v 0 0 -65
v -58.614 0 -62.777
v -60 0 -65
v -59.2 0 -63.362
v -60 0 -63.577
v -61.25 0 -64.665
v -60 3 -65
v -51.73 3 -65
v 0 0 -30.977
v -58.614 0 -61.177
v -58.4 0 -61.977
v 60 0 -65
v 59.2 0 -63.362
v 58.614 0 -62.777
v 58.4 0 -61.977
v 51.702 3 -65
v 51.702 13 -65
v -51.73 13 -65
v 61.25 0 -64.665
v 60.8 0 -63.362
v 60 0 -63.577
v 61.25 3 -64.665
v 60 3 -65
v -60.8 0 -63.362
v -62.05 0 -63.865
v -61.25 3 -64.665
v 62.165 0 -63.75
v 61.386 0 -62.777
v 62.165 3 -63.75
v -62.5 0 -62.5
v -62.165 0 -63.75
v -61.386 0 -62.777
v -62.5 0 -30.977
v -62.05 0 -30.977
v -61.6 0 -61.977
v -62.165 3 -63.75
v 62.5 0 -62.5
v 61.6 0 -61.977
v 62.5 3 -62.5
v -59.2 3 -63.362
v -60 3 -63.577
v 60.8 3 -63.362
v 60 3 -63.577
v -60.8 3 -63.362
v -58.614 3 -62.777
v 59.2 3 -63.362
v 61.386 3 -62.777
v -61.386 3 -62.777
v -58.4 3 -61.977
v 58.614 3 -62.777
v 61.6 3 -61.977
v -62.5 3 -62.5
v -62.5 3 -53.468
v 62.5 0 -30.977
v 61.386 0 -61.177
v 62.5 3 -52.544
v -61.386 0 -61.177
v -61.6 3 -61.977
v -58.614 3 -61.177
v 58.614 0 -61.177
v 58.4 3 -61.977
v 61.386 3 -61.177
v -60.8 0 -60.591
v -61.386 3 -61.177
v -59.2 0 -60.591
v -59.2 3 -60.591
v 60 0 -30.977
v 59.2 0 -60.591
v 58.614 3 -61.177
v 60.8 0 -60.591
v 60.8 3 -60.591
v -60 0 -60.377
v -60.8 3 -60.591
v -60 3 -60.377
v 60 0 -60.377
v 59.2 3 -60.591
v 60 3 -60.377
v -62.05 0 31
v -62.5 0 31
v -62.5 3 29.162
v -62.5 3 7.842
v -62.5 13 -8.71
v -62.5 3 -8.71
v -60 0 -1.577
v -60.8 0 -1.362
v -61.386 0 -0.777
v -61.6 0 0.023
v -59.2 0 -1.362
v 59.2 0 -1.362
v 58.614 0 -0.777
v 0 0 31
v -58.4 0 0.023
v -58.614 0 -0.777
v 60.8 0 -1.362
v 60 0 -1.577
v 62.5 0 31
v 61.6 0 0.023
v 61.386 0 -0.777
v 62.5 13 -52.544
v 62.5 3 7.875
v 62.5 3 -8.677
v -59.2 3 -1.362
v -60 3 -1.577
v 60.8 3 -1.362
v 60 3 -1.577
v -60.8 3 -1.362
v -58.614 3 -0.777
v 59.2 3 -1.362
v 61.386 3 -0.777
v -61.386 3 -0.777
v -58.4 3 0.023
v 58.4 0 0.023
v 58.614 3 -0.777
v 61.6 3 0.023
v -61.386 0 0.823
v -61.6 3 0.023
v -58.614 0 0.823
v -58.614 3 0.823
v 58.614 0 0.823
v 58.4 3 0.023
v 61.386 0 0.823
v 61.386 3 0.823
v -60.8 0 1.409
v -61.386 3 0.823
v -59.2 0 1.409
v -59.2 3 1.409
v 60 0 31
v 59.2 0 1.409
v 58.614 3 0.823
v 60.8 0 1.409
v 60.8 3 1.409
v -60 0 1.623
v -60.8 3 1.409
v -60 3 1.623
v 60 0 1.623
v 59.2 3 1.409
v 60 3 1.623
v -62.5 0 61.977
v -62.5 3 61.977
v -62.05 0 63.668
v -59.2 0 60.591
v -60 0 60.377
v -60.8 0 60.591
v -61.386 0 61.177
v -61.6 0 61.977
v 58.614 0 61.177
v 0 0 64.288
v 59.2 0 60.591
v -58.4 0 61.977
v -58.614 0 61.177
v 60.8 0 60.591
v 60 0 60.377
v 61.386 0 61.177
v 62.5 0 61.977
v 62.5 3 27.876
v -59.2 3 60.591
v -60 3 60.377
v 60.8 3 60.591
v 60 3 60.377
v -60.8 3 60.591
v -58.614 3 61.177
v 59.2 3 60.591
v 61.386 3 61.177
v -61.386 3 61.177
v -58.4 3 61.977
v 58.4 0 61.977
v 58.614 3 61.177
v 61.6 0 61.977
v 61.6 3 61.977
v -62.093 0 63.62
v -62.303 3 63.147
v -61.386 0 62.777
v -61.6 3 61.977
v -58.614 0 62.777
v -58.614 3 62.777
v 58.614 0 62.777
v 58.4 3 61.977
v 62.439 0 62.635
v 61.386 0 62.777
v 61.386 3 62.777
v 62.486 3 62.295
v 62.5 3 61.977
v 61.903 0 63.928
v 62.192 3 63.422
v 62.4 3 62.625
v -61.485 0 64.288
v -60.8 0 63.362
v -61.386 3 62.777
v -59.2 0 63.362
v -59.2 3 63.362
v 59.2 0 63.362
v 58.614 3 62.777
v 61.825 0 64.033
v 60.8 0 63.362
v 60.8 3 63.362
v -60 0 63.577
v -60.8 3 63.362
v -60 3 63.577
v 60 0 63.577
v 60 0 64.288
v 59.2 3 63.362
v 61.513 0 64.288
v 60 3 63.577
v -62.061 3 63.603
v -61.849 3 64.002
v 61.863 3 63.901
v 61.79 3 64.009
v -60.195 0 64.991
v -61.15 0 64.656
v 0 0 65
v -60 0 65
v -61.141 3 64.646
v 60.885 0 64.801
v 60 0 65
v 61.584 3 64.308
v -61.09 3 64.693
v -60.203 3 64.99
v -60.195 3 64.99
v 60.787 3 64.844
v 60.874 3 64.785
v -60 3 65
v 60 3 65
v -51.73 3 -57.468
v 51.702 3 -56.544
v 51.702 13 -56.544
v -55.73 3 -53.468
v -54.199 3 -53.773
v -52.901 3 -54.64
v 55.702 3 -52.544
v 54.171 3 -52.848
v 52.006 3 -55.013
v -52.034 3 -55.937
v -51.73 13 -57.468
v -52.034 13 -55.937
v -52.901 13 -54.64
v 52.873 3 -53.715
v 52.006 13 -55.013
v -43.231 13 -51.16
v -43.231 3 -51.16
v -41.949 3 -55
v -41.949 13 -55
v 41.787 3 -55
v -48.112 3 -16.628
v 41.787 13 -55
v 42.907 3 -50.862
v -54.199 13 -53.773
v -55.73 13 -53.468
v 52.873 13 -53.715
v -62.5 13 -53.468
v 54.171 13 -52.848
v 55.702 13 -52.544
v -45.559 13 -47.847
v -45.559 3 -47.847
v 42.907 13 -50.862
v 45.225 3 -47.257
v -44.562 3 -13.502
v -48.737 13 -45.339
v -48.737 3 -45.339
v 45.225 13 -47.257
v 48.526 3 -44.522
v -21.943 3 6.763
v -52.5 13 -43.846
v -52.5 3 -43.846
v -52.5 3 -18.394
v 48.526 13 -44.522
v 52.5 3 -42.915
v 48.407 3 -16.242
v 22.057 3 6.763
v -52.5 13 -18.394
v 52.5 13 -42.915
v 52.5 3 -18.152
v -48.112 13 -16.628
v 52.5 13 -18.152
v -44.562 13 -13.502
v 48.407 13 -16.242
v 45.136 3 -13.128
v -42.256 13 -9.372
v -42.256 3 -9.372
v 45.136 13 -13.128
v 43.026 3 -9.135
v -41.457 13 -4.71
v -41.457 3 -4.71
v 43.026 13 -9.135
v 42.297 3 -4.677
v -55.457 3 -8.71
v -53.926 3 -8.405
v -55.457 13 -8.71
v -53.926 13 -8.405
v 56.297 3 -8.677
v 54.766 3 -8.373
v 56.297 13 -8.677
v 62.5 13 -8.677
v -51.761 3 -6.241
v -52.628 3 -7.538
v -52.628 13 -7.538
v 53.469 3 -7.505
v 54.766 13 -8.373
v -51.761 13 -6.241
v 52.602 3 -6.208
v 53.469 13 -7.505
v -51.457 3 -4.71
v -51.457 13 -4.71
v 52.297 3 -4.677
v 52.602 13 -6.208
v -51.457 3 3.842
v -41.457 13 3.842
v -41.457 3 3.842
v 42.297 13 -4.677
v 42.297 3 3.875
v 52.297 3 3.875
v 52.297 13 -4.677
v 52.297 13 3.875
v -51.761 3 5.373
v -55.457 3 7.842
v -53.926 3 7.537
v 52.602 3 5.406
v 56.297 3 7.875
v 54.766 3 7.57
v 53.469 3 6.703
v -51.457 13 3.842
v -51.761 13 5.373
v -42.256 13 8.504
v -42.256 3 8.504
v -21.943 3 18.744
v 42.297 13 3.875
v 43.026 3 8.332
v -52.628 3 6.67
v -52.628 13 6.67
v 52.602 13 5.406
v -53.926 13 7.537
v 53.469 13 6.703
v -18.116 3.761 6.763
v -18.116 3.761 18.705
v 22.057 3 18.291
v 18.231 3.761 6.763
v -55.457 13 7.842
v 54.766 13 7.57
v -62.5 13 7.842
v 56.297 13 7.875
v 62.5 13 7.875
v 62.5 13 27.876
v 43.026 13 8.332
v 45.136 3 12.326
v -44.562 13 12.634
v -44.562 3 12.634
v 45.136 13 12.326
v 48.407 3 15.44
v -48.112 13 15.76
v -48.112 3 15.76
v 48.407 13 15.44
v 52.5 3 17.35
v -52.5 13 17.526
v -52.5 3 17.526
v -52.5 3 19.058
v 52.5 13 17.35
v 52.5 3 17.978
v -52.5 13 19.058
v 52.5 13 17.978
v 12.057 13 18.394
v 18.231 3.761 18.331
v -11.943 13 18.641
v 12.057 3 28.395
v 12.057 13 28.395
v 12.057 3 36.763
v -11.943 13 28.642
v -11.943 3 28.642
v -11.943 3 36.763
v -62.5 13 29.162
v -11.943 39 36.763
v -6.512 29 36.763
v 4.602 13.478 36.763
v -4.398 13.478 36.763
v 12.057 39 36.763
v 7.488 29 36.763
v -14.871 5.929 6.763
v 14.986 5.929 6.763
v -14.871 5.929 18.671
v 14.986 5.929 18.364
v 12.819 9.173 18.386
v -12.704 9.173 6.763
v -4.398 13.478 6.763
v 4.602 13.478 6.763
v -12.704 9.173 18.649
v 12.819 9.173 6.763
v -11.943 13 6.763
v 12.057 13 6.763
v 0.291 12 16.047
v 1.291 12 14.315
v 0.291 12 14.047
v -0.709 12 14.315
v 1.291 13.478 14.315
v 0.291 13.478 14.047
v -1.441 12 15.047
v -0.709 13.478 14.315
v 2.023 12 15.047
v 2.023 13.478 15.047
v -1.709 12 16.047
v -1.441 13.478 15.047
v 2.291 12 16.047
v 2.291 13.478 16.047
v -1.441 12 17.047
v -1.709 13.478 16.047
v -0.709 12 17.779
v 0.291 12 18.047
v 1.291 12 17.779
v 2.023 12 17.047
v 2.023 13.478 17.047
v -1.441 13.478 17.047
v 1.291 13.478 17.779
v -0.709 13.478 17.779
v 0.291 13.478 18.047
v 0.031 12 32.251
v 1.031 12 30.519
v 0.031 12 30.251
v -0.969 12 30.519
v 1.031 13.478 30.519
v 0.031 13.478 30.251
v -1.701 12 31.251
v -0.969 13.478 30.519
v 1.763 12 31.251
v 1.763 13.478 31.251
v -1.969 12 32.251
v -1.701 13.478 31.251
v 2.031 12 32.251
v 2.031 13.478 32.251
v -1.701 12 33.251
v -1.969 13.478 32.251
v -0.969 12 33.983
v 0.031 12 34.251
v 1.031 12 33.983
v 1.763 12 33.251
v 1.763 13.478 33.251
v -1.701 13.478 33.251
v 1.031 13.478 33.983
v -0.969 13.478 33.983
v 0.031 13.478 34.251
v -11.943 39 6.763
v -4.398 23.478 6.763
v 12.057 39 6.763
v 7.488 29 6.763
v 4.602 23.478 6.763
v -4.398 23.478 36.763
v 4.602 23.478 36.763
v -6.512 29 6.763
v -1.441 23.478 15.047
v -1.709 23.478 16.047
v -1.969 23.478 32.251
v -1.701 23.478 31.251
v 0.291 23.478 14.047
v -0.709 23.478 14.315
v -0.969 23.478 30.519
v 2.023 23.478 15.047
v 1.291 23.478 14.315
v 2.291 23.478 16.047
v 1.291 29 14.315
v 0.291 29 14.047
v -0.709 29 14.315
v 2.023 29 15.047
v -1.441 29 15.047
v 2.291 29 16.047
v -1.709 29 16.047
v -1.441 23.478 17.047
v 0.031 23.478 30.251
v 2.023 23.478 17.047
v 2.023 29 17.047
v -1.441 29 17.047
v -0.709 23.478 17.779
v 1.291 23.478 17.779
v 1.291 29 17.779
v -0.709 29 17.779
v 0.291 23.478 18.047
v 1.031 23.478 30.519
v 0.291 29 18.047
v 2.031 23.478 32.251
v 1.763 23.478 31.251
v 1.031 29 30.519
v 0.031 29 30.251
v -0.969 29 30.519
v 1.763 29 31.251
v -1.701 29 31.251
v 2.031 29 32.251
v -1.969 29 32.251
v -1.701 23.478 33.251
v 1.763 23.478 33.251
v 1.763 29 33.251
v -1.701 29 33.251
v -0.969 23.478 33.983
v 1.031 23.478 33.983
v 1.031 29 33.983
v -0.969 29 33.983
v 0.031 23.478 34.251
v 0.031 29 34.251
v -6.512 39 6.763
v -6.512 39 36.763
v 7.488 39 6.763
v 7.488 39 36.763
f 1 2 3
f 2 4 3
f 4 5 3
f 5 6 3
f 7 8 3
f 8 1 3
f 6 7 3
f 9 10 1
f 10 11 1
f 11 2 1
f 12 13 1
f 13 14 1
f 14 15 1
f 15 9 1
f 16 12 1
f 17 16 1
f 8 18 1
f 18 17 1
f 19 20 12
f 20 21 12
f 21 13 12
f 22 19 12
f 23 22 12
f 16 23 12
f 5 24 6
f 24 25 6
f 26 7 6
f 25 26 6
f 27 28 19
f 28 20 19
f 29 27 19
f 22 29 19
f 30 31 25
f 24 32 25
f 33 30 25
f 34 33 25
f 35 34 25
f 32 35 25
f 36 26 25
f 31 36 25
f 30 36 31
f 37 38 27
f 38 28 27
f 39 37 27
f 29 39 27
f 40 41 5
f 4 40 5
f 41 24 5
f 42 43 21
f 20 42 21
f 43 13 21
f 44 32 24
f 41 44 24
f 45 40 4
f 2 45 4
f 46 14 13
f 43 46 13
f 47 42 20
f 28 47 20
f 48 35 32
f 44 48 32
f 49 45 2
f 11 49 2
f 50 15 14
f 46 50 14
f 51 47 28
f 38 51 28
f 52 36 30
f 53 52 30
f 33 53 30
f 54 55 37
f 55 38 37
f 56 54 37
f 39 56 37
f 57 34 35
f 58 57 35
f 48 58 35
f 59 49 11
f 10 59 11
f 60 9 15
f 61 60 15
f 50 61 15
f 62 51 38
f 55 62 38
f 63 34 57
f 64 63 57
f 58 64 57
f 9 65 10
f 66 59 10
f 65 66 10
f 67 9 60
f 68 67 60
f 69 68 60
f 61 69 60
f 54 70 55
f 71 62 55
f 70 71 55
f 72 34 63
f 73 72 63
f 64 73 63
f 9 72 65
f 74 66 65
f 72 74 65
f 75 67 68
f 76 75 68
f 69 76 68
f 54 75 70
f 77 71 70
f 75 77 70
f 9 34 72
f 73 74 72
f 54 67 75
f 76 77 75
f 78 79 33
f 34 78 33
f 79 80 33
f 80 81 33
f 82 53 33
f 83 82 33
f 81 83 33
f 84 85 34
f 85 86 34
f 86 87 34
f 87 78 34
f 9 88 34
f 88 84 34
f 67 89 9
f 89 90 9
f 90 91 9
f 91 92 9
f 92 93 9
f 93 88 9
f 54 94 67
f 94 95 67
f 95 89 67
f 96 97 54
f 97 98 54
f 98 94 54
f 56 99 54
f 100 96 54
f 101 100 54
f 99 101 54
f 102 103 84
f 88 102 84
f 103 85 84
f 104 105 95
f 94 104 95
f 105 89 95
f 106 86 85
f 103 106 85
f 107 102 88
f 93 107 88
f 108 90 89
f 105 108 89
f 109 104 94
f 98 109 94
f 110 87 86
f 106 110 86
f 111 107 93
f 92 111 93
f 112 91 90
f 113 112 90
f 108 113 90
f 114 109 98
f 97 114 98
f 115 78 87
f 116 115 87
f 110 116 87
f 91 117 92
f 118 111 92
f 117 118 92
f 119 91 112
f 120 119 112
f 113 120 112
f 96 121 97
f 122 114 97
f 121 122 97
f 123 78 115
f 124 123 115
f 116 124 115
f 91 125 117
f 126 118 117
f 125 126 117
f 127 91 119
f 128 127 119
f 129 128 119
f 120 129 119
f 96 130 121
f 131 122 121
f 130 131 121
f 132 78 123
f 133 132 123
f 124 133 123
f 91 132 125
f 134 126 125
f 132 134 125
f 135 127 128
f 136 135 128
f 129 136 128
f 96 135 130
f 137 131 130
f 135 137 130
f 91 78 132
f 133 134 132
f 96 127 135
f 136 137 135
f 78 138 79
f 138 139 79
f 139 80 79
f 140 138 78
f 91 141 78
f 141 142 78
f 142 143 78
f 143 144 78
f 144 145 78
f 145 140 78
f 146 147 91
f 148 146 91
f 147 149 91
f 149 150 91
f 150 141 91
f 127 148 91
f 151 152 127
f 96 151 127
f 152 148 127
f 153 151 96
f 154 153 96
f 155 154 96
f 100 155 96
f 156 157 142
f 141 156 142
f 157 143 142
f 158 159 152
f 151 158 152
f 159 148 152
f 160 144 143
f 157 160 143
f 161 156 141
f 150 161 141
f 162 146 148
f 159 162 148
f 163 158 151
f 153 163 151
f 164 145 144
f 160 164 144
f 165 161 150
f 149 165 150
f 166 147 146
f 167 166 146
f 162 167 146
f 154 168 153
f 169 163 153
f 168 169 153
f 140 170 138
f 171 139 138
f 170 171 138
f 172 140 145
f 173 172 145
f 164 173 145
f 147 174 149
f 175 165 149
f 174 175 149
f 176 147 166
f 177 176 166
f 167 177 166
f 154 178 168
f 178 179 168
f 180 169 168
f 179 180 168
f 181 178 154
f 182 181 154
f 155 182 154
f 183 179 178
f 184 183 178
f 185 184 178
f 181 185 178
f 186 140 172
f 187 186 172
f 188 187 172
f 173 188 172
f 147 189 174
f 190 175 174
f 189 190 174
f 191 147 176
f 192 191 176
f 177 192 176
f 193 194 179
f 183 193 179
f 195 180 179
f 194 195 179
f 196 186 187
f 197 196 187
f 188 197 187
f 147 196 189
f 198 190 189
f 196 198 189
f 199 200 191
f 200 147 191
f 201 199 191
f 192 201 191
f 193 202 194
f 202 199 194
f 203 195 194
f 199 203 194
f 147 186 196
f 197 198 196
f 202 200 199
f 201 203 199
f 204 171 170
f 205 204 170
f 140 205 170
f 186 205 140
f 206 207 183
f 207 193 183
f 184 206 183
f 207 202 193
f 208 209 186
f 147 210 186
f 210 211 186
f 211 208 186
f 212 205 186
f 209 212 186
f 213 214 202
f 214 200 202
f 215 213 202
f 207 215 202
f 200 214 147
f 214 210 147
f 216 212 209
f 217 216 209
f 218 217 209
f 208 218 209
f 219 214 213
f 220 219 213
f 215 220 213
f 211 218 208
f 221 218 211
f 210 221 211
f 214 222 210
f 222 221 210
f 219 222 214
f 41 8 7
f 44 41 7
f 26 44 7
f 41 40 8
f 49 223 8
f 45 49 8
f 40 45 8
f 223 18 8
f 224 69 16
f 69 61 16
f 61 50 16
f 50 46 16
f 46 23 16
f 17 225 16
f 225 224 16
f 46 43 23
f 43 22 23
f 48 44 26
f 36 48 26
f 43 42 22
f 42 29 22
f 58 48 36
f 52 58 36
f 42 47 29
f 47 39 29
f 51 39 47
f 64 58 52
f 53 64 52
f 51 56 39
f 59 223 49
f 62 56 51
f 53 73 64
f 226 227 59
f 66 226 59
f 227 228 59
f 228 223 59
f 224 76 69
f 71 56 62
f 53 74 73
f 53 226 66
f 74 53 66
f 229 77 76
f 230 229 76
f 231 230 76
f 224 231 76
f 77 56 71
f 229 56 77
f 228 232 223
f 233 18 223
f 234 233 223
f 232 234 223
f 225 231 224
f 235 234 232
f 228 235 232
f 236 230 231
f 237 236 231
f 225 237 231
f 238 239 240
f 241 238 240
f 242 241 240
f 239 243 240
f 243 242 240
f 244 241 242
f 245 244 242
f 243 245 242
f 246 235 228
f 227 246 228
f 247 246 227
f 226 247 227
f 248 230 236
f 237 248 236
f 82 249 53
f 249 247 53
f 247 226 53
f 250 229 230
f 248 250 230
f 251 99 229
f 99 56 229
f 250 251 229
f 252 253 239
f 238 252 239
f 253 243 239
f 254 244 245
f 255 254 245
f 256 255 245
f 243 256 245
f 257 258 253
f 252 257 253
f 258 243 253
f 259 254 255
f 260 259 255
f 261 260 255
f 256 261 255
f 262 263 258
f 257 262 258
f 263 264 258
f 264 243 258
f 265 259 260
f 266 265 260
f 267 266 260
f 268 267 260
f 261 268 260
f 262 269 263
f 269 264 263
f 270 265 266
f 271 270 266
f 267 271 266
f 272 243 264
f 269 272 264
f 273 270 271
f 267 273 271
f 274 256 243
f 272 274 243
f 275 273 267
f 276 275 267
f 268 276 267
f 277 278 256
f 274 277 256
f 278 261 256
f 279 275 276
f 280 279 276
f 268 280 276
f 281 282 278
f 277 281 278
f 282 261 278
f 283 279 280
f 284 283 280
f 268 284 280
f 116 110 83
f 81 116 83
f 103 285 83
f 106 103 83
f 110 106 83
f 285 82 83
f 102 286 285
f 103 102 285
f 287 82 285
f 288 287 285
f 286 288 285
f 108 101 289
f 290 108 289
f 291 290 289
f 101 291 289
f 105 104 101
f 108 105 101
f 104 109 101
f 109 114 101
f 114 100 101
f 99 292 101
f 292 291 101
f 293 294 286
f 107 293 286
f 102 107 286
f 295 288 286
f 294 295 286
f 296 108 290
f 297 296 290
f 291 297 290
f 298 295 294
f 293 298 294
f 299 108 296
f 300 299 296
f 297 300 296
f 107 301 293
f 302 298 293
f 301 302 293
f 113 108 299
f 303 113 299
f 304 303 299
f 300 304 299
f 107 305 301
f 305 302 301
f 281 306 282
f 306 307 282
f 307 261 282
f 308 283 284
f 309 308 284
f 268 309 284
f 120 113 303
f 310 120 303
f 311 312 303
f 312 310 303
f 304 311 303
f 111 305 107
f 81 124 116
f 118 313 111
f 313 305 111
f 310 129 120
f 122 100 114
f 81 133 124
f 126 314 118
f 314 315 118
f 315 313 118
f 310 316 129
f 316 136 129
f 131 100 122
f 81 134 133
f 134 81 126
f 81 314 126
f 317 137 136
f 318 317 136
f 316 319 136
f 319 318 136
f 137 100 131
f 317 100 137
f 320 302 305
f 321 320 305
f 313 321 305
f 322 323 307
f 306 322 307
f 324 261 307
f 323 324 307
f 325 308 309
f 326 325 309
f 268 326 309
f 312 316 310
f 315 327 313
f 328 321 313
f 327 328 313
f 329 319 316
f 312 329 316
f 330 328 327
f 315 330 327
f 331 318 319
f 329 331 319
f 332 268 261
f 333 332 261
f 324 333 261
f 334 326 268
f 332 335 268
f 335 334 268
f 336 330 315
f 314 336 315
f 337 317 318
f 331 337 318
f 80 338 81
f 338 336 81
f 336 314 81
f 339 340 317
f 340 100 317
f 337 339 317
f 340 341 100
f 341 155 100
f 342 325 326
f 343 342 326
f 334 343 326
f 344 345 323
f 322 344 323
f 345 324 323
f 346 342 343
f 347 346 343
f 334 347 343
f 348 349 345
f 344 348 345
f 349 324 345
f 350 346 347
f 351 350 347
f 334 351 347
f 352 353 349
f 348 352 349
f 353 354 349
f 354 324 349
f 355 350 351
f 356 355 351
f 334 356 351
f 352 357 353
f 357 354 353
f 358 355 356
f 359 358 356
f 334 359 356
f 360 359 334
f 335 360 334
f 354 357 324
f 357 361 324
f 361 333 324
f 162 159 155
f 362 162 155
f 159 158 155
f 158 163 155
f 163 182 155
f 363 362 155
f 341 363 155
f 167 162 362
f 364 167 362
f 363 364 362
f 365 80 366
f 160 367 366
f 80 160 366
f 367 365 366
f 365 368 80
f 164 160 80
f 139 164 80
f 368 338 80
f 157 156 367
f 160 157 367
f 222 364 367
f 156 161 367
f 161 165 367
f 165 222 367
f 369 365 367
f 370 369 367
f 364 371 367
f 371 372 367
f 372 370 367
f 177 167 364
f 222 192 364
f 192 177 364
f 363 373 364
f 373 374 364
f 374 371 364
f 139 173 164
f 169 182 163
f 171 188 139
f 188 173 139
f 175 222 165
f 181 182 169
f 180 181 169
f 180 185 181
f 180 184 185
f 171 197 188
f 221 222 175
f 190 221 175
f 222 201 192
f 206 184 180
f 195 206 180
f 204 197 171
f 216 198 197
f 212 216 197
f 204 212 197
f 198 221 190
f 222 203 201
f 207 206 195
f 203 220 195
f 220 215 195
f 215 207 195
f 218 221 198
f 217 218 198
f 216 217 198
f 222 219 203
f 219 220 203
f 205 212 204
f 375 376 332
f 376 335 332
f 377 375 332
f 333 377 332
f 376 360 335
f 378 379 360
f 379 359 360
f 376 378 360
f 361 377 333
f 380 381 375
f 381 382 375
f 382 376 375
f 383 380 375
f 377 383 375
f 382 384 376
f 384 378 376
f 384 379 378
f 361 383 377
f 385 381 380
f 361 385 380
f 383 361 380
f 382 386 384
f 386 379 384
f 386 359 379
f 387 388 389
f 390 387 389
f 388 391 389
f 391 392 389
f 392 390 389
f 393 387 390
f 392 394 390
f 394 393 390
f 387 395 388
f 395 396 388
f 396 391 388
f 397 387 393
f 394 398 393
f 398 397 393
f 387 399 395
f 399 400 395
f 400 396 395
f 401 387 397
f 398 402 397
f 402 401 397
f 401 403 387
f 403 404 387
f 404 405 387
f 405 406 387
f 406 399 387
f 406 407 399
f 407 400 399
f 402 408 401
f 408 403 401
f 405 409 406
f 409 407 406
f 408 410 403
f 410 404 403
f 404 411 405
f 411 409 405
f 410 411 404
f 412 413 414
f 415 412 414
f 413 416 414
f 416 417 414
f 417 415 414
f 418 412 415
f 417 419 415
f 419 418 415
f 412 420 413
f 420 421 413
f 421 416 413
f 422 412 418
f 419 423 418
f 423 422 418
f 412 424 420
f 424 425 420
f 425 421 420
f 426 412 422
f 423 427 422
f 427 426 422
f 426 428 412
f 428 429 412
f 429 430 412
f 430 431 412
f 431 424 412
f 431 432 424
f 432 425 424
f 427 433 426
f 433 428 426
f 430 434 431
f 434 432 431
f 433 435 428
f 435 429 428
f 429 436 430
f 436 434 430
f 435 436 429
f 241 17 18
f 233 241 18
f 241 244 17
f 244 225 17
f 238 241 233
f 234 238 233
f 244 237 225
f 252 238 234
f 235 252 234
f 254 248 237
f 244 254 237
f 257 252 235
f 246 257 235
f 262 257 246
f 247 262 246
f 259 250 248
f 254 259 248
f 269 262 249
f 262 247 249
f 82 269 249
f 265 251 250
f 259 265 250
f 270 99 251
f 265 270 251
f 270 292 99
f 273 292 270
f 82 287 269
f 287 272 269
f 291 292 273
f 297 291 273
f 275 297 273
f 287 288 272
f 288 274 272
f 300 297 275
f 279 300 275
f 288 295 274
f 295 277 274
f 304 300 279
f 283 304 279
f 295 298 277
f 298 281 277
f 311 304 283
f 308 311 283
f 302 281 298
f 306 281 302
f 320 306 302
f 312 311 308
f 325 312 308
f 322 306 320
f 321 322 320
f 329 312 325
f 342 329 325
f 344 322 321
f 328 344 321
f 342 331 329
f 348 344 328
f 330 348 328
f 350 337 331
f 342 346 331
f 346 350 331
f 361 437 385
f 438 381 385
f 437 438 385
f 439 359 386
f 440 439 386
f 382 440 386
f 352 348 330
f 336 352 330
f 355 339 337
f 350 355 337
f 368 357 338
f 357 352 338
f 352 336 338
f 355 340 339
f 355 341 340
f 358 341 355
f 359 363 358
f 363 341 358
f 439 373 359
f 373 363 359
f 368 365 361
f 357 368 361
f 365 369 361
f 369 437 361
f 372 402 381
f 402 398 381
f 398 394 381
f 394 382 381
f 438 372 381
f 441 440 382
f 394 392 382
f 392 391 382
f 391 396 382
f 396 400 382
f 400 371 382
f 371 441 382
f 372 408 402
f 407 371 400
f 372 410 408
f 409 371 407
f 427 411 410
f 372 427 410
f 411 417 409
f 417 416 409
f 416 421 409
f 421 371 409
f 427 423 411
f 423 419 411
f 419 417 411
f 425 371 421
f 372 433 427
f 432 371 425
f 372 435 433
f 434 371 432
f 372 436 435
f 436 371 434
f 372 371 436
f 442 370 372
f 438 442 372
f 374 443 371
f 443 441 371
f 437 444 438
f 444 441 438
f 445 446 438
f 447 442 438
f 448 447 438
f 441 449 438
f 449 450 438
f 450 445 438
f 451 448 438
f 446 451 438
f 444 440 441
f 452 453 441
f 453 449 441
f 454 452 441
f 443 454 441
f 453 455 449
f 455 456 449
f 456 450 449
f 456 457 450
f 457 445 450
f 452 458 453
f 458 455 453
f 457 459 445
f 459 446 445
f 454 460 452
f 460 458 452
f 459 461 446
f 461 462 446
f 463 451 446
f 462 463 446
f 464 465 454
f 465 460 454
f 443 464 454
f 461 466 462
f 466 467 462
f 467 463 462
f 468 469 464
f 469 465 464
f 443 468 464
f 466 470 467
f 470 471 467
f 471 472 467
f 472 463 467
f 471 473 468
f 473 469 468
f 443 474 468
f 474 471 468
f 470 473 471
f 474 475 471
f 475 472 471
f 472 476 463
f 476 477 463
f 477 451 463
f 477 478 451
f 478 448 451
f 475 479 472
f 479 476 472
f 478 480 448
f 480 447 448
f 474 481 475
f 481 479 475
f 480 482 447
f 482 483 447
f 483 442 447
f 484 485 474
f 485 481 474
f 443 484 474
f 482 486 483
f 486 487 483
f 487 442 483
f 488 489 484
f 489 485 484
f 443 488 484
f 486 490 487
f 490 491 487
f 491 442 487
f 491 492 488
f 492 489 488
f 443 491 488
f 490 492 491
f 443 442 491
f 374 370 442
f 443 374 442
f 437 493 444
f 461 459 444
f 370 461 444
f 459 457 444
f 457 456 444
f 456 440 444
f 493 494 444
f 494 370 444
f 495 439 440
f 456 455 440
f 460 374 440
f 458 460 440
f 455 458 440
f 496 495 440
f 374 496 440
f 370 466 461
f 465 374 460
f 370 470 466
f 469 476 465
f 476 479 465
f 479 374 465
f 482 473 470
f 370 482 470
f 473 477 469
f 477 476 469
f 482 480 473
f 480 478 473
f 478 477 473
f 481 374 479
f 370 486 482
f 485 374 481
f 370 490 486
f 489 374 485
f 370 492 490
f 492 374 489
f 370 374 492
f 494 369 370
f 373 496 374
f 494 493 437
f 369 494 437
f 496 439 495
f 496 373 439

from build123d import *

# Parameters (mm, degrees)
SKETCH1_R           = 1.6
BOSS_EXTRUDE1_DEPTH = 3
BOSS_EXTRUDE2_DEPTH = 10
SKETCH4_W           = 24
SKETCH4_H           = 30
BOSS_EXTRUDE3_DEPTH = 36
SKETCH5_W           = 14
SKETCH5_H           = 46.886122037
CUT_EXTRUDE1_DEPTH  = 10
FILLET1_R           = 10
SKETCH6_R           = 2
CUT_EXTRUDE2_DEPTH  = 17
SKETCH7_W           = 9
SKETCH7_H           = 10
CUT_EXTRUDE3_DEPTH  = 43


with BuildPart() as part:
    # Sketch1 → Boss-Extrude1 (new body)
    with BuildSketch(Plane(origin=(0, 0, 0), x_dir=(-1, 0, 0), z_dir=(0, 1, 0))):
        with BuildLine():
            Line((60, 65), (-60, 65))
            add(Edge.make_bspline(
                [(-60, 65), (-60.182819281, 65), (-60.361318877, 64.975540463), (-60.710305196, 64.881249752), (-60.880306062, 64.810741327), (-61.195311527, 64.634632862), (-61.344175944, 64.527049534), (-61.613989028, 64.285865538), (-61.735638417, 64.152370239), (-62.06437147, 63.716635859), (-62.227421468, 63.389720941), (-62.445894576, 62.69875639), (-62.5, 62.340611149), (-62.5, 61.976586008)],
                knots=[0, 0, 0, 0, 0.125, 0.125, 0.25, 0.25, 0.375, 0.375, 0.5, 0.5, 0.75, 0.75, 1, 1, 1, 1], degree=3))
            Line((-62.5, 61.976586008), (-62.5, -62.5))
            ThreePointArc((-62.5, -62.5), (-61.767766953, -64.267766953), (-60, -65))
            Line((-60, -65), (60, -65))
            ThreePointArc((60, -65), (61.767766953, -64.267766953), (62.5, -62.5))
            Line((62.5, -62.5), (62.5, 61.976586008))
            add(Edge.make_bspline(
                [(62.5, 61.976586008), (62.5, 62.34175037), (62.44618995, 62.696231112), (62.283935978, 63.211763232), (62.214956517, 63.382489596), (62.051620496, 63.705029242), (61.957290328, 63.857858356), (61.741427498, 64.145383151), (61.618346212, 64.281498062), (61.347304427, 64.524712758), (61.20089923, 64.631048566), (60.883593427, 64.80935119), (60.713329195, 64.880102966), (60.36541887, 64.974755775), (60.183838083, 65), (60, 65)],
                knots=[0, 0, 0, 0, 0.25, 0.25, 0.375, 0.375, 0.5, 0.5, 0.625, 0.625, 0.75, 0.75, 0.875, 0.875, 1, 1, 1, 1], degree=3))
        make_face()
        with Locations((60, 61.976586008)):
            Circle(SKETCH1_R, mode=Mode.SUBTRACT)
        with Locations((-60, 61.976586008)):
            Circle(SKETCH1_R, mode=Mode.SUBTRACT)
        with Locations((-60, 0.023413992)):
            Circle(SKETCH1_R, mode=Mode.SUBTRACT)
        with Locations((60, 0.023413992)):
            Circle(SKETCH1_R, mode=Mode.SUBTRACT)
        with Locations((-60, -61.976586008)):
            Circle(SKETCH1_R, mode=Mode.SUBTRACT)
        with Locations((60, -61.976586008)):
            Circle(SKETCH1_R, mode=Mode.SUBTRACT)
    extrude(amount=BOSS_EXTRUDE1_DEPTH)

    # Sketch2 → Boss-Extrude2 (add)
    with BuildSketch(Plane(origin=(0, 3, 0), x_dir=(1, 0, 0), z_dir=(0, 1, 0))):
        with BuildLine():
            Line((-62.5, -29.161742213), (62.5, -27.875786008))
            Line((62.5, -27.875786008), (62.5, -7.87481403))
            Line((62.5, -7.87481403), (56.297106888, -7.87481403))
            ThreePointArc((56.297106888, -7.87481403), (53.468679763, -6.703241155), (52.297106888, -3.87481403))
            Line((52.297106888, -3.87481403), (52.297106888, 4.677057962))
            ThreePointArc((52.297106888, 4.677057962), (53.468679763, 7.505485087), (56.297106888, 8.677057962))
            Line((56.297106888, 8.677057962), (62.5, 8.677057962))
            Line((62.5, 8.677057962), (62.5, 52.543812316))
            Line((62.5, 52.543812316), (55.701817461, 52.543812316))
            ThreePointArc((55.701817461, 52.543812316), (52.873390337, 53.715385191), (51.701817461, 56.543812316))
            Line((51.701817461, 56.543812316), (51.701817461, 65))
            Line((51.701817461, 65), (-51.729569497, 65))
            Line((-51.729569497, 65), (-51.729569497, 57.468140355))
            ThreePointArc((-51.729569497, 57.468140355), (-52.901142372, 54.63971323), (-55.729569497, 53.468140355))
            Line((-55.729569497, 53.468140355), (-62.5, 53.468140355))
            Line((-62.5, 53.468140355), (-62.5, 8.709965682))
            Line((-62.5, 8.709965682), (-55.456914608, 8.709965682))
            ThreePointArc((-55.456914608, 8.709965682), (-52.628487483, 7.538392807), (-51.456914608, 4.709965682))
            Line((-51.456914608, 4.709965682), (-51.456914608, -3.84190631))
            ThreePointArc((-51.456914608, -3.84190631), (-52.628487483, -6.670333435), (-55.456914608, -7.84190631))
            Line((-55.456914608, -7.84190631), (-62.5, -7.84190631))
            Line((-62.5, -7.84190631), (-62.5, -29.161742213))
        make_face()
        with BuildLine():
            Line((-52.5, -19.058336552), (52.5, -17.97813334))
            Line((52.5, -17.97813334), (52.5, -17.350049809))
            ThreePointArc((52.5, -17.350049809), (45.135577055, -12.325864367), (42.297106888, -3.87481403))
            Line((42.297106888, -3.87481403), (42.297106888, 4.677057962))
            ThreePointArc((42.297106888, 4.677057962), (45.135577055, 13.128108299), (52.5, 18.152293741))
            Line((52.5, 18.152293741), (52.5, 42.91485913))
            ThreePointArc((52.5, 42.91485913), (45.225378973, 47.257034801), (41.787197684, 55))
            Line((41.787197684, 55), (-41.948848065, 55))
            ThreePointArc((-41.948848065, 55), (-45.558930544, 47.847428152), (-52.5, 43.845736717))
            Line((-52.5, 43.845736717), (-52.5, 18.394141068))
            ThreePointArc((-52.5, 18.394141068), (-44.562034973, 13.502098401), (-41.456914608, 4.709965682))
            Line((-41.456914608, 4.709965682), (-41.456914608, -3.84190631))
            ThreePointArc((-41.456914608, -3.84190631), (-44.562034973, -12.634039029), (-52.5, -17.526081697))
            Line((-52.5, -17.526081697), (-52.5, -19.058336552))
        make_face(mode=Mode.SUBTRACT)
    extrude(amount=BOSS_EXTRUDE2_DEPTH)

    # Sketch4 → Boss-Extrude3 (add)
    with BuildSketch(Plane(origin=(0, 3, 0), x_dir=(1, 0, 0), z_dir=(0, 1, 0))):
        with Locations((0.057489953, -21.76285015)):
            Rectangle(SKETCH4_W, SKETCH4_H)
    extrude(amount=BOSS_EXTRUDE3_DEPTH)

    # Sketch5 → Cut-Extrude1 (cut)
    with BuildSketch(Plane(origin=(0, 39, 0), x_dir=(1, 0, 0), z_dir=(0, 1, 0))):
        with Locations((0.487990249, -20.167047514)):
            Rectangle(SKETCH5_W, SKETCH5_H)
    extrude(amount=-CUT_EXTRUDE1_DEPTH, mode=Mode.SUBTRACT)

    # Fillet1
    fillet1_edges = [part.edges().sort_by_distance(p)[0] for p in [
        (12.057489953, 3, 12.578520932),
        (-11.942510047, 3, 12.701972727),
    ]]
    fillet(fillet1_edges, radius=FILLET1_R)

    # Sketch6 → Cut-Extrude2 (cut)
    with BuildSketch(Plane(origin=(0, 29, 0), x_dir=(1, 0, 0), z_dir=(0, 1, 0))):
        with Locations((0.290601946, -16.047289156)):
            Circle(SKETCH6_R)
        with Locations((0.030645041, -32.251269585)):
            Circle(SKETCH6_R)
    extrude(amount=-CUT_EXTRUDE2_DEPTH, mode=Mode.SUBTRACT)

    # Sketch7 → Cut-Extrude3 (cut)
    with BuildSketch(Plane.XY.offset(36.76285015)):
        with Locations((0.102375744, 18.47840537)):
            Rectangle(SKETCH7_W, SKETCH7_H)
    extrude(amount=-CUT_EXTRUDE3_DEPTH, mode=Mode.SUBTRACT)


solid = part.part
